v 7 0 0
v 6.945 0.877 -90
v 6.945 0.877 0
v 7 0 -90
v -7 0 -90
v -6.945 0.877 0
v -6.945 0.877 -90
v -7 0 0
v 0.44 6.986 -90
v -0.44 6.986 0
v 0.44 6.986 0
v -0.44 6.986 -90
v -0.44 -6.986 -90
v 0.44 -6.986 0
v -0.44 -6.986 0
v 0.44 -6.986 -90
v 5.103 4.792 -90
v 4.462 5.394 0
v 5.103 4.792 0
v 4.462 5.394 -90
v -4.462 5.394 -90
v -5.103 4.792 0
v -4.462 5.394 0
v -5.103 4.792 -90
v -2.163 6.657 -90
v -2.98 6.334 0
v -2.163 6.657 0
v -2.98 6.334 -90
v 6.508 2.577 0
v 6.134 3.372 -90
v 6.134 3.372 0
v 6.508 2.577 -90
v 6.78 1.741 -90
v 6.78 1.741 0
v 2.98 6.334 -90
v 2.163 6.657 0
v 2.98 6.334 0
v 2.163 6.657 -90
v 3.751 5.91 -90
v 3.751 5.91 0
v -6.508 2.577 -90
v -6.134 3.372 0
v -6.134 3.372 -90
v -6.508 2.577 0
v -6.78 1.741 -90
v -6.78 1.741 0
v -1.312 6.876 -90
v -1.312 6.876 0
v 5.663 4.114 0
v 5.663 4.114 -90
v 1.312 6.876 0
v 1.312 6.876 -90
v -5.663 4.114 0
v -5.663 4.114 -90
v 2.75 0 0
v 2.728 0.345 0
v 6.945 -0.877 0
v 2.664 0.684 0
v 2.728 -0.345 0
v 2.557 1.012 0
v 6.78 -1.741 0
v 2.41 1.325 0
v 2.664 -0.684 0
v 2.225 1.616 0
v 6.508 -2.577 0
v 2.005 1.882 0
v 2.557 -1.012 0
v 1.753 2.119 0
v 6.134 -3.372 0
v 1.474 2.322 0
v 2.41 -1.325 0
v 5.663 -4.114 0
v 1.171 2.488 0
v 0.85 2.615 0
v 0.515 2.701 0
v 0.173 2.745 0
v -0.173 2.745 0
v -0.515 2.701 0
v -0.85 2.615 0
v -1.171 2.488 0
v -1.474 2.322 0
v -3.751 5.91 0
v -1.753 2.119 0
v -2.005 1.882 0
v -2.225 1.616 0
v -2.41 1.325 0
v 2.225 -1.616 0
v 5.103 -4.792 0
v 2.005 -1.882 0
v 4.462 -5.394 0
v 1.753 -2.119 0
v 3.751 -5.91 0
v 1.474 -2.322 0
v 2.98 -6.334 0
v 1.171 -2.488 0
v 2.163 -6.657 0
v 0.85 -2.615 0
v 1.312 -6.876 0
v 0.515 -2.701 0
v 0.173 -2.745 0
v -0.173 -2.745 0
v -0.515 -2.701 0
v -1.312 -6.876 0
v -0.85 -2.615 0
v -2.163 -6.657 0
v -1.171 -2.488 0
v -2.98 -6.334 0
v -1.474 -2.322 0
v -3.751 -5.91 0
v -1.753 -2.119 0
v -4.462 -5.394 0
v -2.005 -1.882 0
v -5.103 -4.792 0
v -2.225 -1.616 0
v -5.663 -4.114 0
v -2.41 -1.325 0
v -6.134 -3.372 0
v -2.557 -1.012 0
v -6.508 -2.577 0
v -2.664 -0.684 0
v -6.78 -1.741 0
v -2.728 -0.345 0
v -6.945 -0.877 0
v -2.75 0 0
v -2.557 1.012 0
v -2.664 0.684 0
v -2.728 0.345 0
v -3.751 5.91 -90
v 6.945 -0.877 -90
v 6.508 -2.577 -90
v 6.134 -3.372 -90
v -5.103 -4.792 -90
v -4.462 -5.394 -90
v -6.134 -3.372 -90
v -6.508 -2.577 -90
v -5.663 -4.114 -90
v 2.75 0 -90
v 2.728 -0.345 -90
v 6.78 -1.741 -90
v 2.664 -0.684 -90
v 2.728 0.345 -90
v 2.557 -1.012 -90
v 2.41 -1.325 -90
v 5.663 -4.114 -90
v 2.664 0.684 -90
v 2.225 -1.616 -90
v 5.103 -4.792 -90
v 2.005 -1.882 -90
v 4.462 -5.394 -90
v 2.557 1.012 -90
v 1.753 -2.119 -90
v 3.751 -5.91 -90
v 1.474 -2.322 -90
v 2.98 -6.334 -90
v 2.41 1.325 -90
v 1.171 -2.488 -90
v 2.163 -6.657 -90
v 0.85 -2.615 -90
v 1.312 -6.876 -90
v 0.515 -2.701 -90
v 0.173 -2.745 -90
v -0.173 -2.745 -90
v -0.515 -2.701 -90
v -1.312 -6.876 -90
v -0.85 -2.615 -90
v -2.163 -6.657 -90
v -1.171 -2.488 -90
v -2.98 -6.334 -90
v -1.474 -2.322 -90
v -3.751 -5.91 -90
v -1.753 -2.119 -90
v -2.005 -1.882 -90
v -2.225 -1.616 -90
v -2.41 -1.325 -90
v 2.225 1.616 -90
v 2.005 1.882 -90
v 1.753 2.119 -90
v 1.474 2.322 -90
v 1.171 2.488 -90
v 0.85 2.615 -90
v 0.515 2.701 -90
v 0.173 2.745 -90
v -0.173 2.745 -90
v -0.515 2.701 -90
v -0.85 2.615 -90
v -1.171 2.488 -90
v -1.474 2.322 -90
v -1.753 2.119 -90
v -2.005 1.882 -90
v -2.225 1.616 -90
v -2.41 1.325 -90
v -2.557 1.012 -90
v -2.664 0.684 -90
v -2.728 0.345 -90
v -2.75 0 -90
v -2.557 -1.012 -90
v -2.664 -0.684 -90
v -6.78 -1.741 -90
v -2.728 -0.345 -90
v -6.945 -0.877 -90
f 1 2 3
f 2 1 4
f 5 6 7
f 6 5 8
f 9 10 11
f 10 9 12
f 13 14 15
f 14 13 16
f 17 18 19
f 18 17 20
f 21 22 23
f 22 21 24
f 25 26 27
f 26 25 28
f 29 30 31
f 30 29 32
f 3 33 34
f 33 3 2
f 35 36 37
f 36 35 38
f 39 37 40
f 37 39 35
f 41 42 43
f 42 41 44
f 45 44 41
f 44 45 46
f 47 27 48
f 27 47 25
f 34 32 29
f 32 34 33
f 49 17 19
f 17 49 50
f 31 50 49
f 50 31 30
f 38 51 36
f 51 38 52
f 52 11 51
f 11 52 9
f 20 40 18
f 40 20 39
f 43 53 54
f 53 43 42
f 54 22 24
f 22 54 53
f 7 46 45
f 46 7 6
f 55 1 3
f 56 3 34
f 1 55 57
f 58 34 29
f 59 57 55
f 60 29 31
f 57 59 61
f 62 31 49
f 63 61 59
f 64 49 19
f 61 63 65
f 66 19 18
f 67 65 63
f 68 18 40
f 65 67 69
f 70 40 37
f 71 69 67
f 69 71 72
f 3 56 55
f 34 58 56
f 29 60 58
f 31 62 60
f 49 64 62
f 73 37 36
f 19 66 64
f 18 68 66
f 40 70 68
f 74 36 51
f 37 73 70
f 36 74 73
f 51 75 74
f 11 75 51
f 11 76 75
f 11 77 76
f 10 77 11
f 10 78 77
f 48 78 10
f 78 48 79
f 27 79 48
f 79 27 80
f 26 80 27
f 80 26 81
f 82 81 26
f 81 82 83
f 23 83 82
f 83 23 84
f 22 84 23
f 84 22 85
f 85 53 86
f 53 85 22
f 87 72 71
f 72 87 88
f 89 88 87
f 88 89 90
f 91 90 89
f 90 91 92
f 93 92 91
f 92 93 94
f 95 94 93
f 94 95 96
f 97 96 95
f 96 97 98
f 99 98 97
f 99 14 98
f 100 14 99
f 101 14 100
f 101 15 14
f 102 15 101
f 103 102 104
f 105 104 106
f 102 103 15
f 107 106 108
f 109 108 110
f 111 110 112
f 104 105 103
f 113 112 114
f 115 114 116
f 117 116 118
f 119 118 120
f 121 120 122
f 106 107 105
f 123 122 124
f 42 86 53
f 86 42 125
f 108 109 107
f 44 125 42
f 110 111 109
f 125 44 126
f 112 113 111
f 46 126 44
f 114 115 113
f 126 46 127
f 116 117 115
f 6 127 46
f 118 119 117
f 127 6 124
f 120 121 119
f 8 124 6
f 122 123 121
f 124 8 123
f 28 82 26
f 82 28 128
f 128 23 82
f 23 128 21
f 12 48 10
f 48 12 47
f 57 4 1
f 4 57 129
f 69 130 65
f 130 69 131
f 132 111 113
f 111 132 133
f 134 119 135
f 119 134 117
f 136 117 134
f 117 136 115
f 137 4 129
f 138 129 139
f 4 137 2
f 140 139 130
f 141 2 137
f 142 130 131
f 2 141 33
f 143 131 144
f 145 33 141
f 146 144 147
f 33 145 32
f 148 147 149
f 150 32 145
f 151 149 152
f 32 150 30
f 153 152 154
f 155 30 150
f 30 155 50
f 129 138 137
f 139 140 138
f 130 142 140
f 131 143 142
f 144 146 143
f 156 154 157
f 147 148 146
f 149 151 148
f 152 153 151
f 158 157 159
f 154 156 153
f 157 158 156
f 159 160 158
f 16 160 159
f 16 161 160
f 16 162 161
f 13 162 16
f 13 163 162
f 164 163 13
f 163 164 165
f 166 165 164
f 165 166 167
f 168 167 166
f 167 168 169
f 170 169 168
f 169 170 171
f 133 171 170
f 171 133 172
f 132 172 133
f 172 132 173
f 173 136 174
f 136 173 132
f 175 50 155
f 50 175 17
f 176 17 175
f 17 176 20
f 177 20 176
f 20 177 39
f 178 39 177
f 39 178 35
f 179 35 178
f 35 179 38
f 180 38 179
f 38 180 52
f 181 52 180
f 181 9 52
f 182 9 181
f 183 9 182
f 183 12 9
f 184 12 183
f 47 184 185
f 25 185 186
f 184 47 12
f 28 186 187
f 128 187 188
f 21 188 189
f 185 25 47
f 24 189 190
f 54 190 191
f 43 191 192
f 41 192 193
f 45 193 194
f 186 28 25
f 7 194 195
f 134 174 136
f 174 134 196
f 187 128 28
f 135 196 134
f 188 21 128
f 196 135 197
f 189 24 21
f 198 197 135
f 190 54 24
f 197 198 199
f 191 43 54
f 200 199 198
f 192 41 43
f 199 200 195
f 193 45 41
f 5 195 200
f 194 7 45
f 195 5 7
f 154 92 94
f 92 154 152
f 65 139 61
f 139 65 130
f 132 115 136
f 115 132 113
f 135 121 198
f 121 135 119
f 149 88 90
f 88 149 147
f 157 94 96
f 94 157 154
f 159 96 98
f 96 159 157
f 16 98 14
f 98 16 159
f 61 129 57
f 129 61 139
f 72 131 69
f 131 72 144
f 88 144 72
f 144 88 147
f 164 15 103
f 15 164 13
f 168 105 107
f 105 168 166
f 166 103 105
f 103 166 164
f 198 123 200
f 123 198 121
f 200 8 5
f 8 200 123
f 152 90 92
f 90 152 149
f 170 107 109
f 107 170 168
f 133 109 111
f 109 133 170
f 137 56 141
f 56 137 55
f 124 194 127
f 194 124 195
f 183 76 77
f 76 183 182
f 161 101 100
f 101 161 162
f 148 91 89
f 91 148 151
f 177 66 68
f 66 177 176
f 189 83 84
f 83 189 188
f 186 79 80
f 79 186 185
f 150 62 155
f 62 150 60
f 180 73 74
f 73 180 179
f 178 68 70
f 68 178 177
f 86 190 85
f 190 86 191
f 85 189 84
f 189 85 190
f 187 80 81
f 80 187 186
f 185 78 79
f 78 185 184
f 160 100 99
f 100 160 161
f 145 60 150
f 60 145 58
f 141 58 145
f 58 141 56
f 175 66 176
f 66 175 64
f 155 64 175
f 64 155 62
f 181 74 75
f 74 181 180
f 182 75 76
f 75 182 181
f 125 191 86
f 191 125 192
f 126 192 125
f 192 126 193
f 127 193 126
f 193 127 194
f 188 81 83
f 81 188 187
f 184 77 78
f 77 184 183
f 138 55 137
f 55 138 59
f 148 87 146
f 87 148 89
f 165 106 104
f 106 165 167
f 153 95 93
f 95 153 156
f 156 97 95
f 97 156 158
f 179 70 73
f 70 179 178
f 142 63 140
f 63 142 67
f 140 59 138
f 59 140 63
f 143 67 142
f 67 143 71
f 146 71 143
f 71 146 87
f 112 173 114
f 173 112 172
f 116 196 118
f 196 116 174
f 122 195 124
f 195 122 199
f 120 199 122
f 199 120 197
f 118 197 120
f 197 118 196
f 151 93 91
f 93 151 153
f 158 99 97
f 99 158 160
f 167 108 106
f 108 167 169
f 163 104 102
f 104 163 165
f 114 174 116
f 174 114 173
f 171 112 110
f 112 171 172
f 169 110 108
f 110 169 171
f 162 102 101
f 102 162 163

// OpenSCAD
$fn = 50;


difference() {
	union() {
		translate(v = [0, 0, -90.0000000000]) {
			cylinder(h = 90, r = 7.0000000000);
		}
		cylinder(h = 0, r = 10.0000000000);
	}
	union() {
		#translate(v = [0, 0, -90]) {
			cylinder(h = 90, r = 2.7500000000);
		}
	}
}
